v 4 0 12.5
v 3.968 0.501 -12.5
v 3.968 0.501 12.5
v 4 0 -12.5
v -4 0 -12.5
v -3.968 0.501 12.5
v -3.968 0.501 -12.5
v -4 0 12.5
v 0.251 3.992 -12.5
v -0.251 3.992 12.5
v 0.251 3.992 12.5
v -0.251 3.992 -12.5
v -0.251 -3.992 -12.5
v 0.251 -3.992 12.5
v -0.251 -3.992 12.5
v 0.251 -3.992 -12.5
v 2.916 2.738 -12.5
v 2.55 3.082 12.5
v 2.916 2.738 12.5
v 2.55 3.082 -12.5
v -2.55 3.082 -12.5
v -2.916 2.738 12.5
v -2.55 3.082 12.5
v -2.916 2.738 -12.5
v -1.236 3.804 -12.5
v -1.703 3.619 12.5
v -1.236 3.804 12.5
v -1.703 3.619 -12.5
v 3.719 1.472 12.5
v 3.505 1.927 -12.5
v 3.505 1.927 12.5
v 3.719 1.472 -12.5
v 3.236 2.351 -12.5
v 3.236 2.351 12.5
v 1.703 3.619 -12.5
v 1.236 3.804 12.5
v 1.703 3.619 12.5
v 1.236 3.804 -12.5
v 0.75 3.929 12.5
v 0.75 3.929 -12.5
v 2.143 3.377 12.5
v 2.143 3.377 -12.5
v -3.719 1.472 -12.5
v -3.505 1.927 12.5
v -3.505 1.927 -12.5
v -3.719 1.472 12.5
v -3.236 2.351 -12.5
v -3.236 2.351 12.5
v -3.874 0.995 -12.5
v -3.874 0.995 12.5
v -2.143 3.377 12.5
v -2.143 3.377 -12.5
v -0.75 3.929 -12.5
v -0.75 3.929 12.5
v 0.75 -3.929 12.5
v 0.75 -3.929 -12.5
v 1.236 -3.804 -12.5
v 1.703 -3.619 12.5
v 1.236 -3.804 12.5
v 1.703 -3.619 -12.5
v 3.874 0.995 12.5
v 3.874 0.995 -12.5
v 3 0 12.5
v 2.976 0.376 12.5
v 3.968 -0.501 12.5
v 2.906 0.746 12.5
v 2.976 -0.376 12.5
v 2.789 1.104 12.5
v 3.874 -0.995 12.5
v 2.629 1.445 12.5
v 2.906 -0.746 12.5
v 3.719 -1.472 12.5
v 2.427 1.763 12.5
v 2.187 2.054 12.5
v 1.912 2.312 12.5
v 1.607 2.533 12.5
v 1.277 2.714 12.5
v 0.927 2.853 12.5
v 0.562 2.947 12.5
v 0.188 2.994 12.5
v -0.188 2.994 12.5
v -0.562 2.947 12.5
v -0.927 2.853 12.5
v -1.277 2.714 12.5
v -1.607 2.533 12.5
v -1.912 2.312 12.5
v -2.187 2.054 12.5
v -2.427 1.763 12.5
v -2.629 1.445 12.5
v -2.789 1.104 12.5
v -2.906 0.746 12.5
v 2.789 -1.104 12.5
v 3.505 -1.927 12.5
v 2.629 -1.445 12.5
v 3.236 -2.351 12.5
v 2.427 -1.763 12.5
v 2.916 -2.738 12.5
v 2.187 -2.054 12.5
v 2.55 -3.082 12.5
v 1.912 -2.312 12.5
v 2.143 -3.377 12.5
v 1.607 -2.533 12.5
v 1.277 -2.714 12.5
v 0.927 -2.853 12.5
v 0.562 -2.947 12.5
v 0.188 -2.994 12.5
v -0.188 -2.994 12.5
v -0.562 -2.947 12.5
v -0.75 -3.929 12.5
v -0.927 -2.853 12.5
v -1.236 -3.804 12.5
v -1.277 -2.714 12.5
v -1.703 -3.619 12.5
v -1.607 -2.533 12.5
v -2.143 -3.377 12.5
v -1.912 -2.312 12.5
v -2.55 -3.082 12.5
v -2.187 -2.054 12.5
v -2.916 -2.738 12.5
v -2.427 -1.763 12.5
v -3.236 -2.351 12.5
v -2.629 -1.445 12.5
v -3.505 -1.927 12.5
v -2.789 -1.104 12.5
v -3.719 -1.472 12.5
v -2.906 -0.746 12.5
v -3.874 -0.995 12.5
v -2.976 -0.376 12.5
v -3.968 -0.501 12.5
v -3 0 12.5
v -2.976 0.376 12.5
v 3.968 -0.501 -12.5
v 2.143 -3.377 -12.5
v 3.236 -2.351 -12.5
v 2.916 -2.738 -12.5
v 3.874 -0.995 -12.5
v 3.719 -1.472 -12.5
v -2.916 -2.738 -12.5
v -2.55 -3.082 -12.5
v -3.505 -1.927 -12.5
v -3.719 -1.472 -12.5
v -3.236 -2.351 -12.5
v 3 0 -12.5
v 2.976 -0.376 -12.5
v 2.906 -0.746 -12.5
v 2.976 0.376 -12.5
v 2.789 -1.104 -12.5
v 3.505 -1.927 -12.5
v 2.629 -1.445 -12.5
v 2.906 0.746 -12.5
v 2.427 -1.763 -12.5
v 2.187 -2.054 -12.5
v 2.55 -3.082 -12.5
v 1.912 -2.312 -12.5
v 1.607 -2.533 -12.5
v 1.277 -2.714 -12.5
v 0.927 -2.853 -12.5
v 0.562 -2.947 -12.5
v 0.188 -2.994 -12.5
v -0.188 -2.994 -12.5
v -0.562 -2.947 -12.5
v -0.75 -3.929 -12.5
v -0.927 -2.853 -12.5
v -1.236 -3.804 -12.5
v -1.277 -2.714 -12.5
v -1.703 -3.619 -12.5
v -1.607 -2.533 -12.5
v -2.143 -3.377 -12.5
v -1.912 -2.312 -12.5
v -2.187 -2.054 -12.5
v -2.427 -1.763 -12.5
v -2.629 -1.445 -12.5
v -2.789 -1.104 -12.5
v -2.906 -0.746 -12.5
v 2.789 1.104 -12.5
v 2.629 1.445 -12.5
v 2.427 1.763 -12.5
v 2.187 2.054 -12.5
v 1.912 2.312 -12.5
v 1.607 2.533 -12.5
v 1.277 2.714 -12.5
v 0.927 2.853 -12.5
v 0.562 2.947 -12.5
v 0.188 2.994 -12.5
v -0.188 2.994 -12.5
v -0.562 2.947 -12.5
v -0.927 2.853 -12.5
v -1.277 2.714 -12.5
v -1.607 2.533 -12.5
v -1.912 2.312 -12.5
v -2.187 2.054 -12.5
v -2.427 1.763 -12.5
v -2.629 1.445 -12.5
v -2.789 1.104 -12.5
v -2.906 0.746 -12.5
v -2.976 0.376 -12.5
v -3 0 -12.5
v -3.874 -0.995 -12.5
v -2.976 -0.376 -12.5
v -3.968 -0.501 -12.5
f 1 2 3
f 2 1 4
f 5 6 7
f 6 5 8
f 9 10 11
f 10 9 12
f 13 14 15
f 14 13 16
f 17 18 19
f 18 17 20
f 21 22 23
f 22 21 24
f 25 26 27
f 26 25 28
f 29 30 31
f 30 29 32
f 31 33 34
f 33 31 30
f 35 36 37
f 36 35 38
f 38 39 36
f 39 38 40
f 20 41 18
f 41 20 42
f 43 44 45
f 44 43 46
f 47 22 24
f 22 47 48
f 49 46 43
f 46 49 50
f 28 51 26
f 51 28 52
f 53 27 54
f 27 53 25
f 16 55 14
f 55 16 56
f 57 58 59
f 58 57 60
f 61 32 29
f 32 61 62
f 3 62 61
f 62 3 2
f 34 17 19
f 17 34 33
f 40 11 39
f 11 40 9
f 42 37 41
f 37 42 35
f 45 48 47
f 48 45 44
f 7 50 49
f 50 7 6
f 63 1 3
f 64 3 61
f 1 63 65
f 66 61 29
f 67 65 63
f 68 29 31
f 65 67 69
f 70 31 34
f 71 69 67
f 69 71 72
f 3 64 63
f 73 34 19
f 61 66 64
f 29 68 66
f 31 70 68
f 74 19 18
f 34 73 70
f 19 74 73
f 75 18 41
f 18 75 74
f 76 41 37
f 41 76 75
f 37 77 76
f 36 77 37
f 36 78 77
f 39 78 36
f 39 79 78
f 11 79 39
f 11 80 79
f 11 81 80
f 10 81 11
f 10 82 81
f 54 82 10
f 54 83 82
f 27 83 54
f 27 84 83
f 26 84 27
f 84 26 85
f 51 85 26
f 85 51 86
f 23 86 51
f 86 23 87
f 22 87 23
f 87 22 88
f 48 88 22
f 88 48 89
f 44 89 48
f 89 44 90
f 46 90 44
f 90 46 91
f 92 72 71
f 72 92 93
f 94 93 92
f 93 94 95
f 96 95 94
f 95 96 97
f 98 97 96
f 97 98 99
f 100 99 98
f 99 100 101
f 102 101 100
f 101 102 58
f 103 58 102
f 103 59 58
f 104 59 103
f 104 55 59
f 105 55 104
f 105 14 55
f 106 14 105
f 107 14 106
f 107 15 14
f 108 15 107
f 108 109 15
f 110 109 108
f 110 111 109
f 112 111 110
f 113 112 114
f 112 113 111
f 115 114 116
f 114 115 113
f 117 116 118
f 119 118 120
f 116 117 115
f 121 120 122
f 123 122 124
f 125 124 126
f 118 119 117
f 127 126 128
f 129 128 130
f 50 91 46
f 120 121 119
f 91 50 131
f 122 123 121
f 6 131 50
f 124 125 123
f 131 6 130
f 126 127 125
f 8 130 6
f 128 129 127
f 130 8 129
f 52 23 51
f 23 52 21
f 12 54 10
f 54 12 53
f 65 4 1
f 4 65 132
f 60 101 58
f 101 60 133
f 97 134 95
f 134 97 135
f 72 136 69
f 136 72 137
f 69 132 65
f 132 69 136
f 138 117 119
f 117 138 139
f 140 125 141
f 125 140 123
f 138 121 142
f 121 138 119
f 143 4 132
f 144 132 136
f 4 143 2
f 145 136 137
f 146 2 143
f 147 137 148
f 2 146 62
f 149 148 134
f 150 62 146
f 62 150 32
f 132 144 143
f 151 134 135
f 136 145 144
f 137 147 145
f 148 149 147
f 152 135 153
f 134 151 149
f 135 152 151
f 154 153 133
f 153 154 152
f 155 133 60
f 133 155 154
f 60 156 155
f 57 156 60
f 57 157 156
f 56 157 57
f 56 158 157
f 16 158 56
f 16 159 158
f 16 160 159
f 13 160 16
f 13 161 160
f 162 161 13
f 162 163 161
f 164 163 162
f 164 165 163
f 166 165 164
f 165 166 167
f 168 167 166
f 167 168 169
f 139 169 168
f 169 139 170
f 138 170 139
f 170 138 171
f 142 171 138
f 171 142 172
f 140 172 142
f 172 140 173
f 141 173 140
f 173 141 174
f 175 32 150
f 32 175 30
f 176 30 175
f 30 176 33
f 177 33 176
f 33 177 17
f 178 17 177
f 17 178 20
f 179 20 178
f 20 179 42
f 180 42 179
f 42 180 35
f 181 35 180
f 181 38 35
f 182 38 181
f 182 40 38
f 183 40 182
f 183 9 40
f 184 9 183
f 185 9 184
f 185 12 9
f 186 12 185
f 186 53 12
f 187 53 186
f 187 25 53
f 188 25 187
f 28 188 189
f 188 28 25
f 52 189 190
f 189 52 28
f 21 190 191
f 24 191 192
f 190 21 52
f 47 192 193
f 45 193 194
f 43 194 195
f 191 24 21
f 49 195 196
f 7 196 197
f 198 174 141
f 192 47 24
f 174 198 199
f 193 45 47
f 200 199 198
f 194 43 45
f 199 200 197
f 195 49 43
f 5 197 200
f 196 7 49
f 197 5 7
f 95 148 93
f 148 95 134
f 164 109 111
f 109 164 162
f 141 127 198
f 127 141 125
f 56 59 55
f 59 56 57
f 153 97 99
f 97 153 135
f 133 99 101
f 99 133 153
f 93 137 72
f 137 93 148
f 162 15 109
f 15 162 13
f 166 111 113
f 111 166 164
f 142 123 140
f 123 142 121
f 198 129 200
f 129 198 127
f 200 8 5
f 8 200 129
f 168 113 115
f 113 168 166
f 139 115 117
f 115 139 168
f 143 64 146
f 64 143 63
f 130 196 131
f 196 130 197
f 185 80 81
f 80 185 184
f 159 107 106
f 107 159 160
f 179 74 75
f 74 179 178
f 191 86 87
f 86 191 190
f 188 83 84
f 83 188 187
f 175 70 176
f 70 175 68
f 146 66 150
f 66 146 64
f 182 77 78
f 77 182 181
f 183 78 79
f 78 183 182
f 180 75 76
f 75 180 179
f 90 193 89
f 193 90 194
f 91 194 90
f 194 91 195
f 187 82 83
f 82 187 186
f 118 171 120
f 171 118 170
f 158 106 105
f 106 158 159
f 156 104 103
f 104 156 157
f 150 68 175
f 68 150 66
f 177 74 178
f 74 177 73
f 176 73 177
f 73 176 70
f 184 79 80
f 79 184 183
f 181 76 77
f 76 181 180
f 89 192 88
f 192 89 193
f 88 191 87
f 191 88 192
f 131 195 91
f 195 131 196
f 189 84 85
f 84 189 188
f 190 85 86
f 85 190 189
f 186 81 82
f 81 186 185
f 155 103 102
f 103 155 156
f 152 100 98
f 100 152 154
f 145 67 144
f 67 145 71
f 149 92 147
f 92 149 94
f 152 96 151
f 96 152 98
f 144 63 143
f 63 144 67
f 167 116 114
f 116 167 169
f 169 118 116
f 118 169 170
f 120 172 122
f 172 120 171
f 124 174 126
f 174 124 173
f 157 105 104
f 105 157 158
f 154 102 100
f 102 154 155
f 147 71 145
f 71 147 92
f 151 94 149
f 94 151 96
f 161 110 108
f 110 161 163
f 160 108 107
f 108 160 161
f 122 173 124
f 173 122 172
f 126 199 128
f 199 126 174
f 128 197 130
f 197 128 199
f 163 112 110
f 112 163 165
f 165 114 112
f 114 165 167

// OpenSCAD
$fn = 50;


difference() {
	union() {
		translate(v = [0, 0, -12.5000000000]) {
			cylinder(h = 25, r = 4.0000000000);
		}
	}
	union() {
		translate(v = [0, 0, -100.0000000000]) {
			cylinder(h = 200, r = 3);
		}
	}
}
